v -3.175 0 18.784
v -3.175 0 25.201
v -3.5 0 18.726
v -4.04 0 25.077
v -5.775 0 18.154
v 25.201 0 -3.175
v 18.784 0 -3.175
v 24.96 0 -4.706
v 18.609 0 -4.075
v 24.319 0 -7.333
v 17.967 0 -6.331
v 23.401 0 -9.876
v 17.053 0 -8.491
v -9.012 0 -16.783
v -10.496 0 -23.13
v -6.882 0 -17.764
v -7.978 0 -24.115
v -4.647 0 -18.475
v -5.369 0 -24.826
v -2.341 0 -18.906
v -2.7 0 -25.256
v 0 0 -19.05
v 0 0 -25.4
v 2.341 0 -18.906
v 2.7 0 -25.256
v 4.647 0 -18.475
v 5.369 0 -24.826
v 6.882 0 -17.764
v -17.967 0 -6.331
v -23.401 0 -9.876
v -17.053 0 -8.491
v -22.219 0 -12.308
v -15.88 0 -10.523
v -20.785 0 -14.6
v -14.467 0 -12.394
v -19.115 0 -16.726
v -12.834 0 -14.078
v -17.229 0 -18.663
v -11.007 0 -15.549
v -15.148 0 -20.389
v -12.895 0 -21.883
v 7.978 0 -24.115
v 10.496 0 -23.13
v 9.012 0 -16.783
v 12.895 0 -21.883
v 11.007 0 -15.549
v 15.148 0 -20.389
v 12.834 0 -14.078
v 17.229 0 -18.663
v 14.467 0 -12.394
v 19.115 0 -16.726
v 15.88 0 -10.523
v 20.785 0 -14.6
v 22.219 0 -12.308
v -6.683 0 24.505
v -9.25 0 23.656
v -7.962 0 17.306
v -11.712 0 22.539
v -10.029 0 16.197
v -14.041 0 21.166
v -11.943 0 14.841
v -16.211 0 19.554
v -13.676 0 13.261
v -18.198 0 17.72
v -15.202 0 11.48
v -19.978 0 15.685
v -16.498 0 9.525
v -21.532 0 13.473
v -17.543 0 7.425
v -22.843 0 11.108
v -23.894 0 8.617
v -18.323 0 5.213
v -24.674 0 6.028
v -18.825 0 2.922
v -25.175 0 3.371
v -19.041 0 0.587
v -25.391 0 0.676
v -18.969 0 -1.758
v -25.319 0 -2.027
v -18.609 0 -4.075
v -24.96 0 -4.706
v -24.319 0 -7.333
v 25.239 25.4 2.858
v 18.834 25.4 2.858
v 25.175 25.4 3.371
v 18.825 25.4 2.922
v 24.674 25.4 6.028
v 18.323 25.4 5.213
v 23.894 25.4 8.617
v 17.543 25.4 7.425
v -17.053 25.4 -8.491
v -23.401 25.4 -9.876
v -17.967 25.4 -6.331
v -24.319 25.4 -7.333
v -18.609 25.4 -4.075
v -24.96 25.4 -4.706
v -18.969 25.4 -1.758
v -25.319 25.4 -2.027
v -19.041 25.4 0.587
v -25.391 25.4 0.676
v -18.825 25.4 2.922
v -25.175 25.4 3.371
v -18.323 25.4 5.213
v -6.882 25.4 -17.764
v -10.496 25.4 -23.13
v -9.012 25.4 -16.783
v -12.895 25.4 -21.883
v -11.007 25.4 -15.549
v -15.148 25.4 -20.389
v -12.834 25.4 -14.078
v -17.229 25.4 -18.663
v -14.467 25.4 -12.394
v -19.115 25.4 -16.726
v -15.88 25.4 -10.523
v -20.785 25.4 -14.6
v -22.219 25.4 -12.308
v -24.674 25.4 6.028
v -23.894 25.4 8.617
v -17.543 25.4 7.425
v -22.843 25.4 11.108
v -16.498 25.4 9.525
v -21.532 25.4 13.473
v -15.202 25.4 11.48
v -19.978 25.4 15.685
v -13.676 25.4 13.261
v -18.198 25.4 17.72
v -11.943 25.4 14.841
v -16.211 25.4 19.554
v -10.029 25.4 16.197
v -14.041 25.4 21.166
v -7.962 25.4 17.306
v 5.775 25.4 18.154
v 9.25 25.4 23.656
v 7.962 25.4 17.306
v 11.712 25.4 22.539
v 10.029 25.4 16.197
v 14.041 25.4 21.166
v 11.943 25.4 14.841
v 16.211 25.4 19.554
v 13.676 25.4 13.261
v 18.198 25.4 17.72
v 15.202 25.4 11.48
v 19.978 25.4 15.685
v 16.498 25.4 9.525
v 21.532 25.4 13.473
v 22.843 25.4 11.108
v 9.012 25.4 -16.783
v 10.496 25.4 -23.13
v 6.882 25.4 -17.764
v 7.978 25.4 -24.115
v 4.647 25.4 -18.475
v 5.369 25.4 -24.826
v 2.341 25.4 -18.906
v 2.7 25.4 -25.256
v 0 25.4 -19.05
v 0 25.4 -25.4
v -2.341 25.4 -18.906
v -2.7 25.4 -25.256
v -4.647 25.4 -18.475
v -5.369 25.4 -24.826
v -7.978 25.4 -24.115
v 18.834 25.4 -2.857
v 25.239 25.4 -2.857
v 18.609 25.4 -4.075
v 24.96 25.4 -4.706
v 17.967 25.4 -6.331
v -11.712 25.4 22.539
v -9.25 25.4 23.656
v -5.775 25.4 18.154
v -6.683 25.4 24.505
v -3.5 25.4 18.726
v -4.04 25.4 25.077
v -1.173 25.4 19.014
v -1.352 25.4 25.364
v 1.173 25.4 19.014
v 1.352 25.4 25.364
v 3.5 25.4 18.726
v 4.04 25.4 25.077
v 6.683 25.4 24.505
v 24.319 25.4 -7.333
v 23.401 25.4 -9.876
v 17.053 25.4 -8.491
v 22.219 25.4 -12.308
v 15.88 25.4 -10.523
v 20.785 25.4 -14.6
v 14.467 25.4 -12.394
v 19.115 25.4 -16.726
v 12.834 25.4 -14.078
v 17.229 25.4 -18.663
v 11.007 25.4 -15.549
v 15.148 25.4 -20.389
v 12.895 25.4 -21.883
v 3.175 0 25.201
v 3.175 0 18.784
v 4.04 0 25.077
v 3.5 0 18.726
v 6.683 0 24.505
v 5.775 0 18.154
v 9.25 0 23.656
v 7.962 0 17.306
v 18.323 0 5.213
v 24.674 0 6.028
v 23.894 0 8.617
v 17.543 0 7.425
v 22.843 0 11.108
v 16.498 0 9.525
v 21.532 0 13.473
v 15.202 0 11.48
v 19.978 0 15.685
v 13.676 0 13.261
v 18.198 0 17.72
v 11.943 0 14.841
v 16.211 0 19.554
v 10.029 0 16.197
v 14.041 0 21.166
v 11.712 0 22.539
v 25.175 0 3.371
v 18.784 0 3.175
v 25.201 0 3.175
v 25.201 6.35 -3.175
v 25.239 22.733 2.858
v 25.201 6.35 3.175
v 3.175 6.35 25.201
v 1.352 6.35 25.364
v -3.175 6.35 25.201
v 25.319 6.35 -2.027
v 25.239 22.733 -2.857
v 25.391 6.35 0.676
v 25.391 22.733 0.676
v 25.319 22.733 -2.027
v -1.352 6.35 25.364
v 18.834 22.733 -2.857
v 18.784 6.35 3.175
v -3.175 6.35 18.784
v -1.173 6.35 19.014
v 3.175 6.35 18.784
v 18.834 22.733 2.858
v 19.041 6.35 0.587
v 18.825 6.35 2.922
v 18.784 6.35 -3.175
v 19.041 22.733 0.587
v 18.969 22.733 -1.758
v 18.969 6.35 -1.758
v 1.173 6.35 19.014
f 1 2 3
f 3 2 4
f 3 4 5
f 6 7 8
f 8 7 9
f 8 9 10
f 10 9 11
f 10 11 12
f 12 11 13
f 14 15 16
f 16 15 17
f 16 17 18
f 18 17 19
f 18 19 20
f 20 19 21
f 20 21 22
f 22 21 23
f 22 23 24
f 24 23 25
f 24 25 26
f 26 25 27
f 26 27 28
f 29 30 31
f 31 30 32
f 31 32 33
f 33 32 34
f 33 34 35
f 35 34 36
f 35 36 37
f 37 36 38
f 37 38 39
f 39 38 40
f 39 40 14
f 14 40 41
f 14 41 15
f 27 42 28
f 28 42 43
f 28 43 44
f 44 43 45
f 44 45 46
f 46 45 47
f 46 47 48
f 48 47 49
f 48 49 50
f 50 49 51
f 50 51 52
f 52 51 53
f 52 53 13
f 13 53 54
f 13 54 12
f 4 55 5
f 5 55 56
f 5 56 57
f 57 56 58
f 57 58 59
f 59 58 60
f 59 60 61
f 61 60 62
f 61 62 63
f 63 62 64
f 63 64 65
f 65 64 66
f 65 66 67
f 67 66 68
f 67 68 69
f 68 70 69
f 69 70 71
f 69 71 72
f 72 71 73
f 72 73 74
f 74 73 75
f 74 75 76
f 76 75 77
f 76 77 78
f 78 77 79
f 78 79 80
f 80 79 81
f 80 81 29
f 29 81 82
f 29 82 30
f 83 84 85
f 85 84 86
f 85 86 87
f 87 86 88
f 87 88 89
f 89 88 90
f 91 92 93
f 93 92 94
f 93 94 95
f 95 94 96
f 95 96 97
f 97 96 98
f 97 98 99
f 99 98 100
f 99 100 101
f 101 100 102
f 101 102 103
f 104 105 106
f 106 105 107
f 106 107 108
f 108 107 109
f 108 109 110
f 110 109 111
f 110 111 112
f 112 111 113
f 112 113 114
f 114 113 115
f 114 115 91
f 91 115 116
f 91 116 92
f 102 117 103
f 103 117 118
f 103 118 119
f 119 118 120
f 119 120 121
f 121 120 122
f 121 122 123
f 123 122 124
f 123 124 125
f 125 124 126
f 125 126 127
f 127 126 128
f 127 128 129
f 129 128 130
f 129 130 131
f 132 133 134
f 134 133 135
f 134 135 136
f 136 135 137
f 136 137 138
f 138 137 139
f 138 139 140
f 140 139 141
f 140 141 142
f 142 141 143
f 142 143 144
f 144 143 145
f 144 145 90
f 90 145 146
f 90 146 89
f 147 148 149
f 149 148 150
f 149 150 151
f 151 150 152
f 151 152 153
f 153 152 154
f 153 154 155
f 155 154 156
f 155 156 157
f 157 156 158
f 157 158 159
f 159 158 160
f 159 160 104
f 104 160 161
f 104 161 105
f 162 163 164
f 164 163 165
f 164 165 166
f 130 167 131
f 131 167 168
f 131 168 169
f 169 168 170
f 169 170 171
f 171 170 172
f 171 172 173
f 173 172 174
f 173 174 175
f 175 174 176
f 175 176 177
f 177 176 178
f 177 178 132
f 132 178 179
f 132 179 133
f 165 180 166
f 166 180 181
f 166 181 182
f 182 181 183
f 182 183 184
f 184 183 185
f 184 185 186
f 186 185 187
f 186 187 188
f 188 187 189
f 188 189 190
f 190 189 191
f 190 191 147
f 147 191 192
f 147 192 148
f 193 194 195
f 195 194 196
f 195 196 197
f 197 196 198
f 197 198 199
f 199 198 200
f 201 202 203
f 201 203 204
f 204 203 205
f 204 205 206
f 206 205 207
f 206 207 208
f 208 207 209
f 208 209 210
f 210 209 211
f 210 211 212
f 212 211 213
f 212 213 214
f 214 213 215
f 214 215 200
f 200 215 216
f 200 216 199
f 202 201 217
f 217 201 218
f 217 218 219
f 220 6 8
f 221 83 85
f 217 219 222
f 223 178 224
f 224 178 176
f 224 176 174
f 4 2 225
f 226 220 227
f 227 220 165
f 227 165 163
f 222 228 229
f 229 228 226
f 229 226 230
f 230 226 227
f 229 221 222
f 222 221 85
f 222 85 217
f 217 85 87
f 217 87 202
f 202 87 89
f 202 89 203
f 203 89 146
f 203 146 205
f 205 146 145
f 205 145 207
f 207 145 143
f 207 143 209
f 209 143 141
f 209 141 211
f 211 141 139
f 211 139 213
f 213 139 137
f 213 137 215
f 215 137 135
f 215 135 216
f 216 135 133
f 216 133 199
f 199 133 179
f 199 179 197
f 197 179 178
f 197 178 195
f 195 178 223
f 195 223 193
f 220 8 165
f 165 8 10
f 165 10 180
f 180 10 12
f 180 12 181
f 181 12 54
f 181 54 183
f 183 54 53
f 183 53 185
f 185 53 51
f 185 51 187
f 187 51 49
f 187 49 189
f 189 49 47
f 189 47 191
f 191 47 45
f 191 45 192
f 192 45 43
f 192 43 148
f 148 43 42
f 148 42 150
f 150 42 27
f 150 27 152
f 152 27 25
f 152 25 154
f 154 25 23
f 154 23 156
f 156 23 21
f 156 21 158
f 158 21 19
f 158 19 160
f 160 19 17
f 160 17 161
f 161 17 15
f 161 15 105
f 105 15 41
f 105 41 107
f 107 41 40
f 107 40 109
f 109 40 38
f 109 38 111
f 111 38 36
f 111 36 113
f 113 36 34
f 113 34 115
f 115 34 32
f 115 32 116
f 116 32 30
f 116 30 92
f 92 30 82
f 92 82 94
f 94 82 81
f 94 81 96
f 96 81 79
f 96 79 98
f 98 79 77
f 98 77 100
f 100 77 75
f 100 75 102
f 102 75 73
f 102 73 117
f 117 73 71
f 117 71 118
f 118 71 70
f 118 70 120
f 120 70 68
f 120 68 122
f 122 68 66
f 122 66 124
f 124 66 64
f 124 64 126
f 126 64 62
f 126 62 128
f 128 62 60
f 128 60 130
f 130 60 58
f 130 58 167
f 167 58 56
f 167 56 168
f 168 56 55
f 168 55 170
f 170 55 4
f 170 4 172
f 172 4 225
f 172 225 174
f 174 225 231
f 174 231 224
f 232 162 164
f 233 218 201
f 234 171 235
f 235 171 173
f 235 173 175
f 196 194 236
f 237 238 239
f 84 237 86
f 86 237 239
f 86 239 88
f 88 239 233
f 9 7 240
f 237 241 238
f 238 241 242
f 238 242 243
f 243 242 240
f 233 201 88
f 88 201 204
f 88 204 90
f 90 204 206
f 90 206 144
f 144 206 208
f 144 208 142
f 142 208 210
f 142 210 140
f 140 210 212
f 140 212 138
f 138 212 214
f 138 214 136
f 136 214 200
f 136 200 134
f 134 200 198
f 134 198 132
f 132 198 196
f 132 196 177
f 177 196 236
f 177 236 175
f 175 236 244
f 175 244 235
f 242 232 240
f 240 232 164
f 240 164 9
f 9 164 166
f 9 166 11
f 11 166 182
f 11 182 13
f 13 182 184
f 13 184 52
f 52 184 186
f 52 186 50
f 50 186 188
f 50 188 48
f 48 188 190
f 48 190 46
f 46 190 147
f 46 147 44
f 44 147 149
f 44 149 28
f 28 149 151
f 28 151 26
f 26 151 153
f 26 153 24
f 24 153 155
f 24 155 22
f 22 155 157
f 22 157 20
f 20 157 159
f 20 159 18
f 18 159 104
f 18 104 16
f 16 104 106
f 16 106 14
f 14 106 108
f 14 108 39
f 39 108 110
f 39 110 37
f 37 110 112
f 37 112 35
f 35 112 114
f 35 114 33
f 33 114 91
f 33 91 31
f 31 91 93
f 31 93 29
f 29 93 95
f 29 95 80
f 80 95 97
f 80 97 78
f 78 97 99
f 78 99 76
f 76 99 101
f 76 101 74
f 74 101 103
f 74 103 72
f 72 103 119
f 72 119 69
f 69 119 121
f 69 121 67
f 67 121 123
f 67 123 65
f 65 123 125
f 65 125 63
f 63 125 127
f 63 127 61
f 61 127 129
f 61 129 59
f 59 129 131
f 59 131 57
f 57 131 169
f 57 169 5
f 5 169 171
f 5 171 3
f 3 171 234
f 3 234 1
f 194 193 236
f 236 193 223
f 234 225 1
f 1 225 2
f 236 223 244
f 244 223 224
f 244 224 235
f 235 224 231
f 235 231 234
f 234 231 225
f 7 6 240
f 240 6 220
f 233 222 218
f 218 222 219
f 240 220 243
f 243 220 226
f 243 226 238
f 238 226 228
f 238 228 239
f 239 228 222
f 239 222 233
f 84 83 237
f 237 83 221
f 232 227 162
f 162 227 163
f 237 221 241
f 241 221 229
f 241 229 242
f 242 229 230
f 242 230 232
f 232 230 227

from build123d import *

# Parameters (mm, degrees)
SKETCH1_R           = 25.4
SKETCH1_R_2         = 19.05
BOSS_EXTRUDE1_DEPTH = 25.4
SKETCH2_W           = 15.24
SKETCH2_H           = 6.35
SKETCH2_W_2         = 6.35
SKETCH2_H_2         = 15.24
CUT_EXTRUDE1_DEPTH  = 6.35
SKETCH3_W           = 19.80573375
SKETCH3_H           = 5.715
CUT_EXTRUDE2_DEPTH  = 2.667


with BuildPart() as part:
    # Sketch1 → Boss-Extrude1 (new body)
    with BuildSketch(Plane(origin=(0, 0, 0), x_dir=(1, 0, 0), z_dir=(0, 1, 0))):
        with Locations(Location((0, 0, 0), (0, 0, 270))):
            Circle(SKETCH1_R)
        with Locations(Location((0, 0, 0), (0, 0, 270))):
            Circle(SKETCH1_R_2, mode=Mode.SUBTRACT)
    extrude(amount=BOSS_EXTRUDE1_DEPTH)

    # Sketch2 → Cut-Extrude1 (cut)
    with BuildSketch(Plane.XZ):
        with Locations((25.4, 0)):
            Rectangle(SKETCH2_W, SKETCH2_H)
        with Locations((0, 25.4)):
            Rectangle(SKETCH2_W_2, SKETCH2_H_2)
    extrude(amount=-CUT_EXTRUDE1_DEPTH, mode=Mode.SUBTRACT)

    # Sketch3 → Cut-Extrude2 (cut)
    with BuildSketch(Plane(origin=(0, 25.4, 0), x_dir=(1, 0, 0), z_dir=(0, 1, 0))):
        with Locations((25.4, 0)):
            Rectangle(SKETCH3_W, SKETCH3_H)
    extrude(amount=-CUT_EXTRUDE2_DEPTH, mode=Mode.SUBTRACT)


solid = part.part
